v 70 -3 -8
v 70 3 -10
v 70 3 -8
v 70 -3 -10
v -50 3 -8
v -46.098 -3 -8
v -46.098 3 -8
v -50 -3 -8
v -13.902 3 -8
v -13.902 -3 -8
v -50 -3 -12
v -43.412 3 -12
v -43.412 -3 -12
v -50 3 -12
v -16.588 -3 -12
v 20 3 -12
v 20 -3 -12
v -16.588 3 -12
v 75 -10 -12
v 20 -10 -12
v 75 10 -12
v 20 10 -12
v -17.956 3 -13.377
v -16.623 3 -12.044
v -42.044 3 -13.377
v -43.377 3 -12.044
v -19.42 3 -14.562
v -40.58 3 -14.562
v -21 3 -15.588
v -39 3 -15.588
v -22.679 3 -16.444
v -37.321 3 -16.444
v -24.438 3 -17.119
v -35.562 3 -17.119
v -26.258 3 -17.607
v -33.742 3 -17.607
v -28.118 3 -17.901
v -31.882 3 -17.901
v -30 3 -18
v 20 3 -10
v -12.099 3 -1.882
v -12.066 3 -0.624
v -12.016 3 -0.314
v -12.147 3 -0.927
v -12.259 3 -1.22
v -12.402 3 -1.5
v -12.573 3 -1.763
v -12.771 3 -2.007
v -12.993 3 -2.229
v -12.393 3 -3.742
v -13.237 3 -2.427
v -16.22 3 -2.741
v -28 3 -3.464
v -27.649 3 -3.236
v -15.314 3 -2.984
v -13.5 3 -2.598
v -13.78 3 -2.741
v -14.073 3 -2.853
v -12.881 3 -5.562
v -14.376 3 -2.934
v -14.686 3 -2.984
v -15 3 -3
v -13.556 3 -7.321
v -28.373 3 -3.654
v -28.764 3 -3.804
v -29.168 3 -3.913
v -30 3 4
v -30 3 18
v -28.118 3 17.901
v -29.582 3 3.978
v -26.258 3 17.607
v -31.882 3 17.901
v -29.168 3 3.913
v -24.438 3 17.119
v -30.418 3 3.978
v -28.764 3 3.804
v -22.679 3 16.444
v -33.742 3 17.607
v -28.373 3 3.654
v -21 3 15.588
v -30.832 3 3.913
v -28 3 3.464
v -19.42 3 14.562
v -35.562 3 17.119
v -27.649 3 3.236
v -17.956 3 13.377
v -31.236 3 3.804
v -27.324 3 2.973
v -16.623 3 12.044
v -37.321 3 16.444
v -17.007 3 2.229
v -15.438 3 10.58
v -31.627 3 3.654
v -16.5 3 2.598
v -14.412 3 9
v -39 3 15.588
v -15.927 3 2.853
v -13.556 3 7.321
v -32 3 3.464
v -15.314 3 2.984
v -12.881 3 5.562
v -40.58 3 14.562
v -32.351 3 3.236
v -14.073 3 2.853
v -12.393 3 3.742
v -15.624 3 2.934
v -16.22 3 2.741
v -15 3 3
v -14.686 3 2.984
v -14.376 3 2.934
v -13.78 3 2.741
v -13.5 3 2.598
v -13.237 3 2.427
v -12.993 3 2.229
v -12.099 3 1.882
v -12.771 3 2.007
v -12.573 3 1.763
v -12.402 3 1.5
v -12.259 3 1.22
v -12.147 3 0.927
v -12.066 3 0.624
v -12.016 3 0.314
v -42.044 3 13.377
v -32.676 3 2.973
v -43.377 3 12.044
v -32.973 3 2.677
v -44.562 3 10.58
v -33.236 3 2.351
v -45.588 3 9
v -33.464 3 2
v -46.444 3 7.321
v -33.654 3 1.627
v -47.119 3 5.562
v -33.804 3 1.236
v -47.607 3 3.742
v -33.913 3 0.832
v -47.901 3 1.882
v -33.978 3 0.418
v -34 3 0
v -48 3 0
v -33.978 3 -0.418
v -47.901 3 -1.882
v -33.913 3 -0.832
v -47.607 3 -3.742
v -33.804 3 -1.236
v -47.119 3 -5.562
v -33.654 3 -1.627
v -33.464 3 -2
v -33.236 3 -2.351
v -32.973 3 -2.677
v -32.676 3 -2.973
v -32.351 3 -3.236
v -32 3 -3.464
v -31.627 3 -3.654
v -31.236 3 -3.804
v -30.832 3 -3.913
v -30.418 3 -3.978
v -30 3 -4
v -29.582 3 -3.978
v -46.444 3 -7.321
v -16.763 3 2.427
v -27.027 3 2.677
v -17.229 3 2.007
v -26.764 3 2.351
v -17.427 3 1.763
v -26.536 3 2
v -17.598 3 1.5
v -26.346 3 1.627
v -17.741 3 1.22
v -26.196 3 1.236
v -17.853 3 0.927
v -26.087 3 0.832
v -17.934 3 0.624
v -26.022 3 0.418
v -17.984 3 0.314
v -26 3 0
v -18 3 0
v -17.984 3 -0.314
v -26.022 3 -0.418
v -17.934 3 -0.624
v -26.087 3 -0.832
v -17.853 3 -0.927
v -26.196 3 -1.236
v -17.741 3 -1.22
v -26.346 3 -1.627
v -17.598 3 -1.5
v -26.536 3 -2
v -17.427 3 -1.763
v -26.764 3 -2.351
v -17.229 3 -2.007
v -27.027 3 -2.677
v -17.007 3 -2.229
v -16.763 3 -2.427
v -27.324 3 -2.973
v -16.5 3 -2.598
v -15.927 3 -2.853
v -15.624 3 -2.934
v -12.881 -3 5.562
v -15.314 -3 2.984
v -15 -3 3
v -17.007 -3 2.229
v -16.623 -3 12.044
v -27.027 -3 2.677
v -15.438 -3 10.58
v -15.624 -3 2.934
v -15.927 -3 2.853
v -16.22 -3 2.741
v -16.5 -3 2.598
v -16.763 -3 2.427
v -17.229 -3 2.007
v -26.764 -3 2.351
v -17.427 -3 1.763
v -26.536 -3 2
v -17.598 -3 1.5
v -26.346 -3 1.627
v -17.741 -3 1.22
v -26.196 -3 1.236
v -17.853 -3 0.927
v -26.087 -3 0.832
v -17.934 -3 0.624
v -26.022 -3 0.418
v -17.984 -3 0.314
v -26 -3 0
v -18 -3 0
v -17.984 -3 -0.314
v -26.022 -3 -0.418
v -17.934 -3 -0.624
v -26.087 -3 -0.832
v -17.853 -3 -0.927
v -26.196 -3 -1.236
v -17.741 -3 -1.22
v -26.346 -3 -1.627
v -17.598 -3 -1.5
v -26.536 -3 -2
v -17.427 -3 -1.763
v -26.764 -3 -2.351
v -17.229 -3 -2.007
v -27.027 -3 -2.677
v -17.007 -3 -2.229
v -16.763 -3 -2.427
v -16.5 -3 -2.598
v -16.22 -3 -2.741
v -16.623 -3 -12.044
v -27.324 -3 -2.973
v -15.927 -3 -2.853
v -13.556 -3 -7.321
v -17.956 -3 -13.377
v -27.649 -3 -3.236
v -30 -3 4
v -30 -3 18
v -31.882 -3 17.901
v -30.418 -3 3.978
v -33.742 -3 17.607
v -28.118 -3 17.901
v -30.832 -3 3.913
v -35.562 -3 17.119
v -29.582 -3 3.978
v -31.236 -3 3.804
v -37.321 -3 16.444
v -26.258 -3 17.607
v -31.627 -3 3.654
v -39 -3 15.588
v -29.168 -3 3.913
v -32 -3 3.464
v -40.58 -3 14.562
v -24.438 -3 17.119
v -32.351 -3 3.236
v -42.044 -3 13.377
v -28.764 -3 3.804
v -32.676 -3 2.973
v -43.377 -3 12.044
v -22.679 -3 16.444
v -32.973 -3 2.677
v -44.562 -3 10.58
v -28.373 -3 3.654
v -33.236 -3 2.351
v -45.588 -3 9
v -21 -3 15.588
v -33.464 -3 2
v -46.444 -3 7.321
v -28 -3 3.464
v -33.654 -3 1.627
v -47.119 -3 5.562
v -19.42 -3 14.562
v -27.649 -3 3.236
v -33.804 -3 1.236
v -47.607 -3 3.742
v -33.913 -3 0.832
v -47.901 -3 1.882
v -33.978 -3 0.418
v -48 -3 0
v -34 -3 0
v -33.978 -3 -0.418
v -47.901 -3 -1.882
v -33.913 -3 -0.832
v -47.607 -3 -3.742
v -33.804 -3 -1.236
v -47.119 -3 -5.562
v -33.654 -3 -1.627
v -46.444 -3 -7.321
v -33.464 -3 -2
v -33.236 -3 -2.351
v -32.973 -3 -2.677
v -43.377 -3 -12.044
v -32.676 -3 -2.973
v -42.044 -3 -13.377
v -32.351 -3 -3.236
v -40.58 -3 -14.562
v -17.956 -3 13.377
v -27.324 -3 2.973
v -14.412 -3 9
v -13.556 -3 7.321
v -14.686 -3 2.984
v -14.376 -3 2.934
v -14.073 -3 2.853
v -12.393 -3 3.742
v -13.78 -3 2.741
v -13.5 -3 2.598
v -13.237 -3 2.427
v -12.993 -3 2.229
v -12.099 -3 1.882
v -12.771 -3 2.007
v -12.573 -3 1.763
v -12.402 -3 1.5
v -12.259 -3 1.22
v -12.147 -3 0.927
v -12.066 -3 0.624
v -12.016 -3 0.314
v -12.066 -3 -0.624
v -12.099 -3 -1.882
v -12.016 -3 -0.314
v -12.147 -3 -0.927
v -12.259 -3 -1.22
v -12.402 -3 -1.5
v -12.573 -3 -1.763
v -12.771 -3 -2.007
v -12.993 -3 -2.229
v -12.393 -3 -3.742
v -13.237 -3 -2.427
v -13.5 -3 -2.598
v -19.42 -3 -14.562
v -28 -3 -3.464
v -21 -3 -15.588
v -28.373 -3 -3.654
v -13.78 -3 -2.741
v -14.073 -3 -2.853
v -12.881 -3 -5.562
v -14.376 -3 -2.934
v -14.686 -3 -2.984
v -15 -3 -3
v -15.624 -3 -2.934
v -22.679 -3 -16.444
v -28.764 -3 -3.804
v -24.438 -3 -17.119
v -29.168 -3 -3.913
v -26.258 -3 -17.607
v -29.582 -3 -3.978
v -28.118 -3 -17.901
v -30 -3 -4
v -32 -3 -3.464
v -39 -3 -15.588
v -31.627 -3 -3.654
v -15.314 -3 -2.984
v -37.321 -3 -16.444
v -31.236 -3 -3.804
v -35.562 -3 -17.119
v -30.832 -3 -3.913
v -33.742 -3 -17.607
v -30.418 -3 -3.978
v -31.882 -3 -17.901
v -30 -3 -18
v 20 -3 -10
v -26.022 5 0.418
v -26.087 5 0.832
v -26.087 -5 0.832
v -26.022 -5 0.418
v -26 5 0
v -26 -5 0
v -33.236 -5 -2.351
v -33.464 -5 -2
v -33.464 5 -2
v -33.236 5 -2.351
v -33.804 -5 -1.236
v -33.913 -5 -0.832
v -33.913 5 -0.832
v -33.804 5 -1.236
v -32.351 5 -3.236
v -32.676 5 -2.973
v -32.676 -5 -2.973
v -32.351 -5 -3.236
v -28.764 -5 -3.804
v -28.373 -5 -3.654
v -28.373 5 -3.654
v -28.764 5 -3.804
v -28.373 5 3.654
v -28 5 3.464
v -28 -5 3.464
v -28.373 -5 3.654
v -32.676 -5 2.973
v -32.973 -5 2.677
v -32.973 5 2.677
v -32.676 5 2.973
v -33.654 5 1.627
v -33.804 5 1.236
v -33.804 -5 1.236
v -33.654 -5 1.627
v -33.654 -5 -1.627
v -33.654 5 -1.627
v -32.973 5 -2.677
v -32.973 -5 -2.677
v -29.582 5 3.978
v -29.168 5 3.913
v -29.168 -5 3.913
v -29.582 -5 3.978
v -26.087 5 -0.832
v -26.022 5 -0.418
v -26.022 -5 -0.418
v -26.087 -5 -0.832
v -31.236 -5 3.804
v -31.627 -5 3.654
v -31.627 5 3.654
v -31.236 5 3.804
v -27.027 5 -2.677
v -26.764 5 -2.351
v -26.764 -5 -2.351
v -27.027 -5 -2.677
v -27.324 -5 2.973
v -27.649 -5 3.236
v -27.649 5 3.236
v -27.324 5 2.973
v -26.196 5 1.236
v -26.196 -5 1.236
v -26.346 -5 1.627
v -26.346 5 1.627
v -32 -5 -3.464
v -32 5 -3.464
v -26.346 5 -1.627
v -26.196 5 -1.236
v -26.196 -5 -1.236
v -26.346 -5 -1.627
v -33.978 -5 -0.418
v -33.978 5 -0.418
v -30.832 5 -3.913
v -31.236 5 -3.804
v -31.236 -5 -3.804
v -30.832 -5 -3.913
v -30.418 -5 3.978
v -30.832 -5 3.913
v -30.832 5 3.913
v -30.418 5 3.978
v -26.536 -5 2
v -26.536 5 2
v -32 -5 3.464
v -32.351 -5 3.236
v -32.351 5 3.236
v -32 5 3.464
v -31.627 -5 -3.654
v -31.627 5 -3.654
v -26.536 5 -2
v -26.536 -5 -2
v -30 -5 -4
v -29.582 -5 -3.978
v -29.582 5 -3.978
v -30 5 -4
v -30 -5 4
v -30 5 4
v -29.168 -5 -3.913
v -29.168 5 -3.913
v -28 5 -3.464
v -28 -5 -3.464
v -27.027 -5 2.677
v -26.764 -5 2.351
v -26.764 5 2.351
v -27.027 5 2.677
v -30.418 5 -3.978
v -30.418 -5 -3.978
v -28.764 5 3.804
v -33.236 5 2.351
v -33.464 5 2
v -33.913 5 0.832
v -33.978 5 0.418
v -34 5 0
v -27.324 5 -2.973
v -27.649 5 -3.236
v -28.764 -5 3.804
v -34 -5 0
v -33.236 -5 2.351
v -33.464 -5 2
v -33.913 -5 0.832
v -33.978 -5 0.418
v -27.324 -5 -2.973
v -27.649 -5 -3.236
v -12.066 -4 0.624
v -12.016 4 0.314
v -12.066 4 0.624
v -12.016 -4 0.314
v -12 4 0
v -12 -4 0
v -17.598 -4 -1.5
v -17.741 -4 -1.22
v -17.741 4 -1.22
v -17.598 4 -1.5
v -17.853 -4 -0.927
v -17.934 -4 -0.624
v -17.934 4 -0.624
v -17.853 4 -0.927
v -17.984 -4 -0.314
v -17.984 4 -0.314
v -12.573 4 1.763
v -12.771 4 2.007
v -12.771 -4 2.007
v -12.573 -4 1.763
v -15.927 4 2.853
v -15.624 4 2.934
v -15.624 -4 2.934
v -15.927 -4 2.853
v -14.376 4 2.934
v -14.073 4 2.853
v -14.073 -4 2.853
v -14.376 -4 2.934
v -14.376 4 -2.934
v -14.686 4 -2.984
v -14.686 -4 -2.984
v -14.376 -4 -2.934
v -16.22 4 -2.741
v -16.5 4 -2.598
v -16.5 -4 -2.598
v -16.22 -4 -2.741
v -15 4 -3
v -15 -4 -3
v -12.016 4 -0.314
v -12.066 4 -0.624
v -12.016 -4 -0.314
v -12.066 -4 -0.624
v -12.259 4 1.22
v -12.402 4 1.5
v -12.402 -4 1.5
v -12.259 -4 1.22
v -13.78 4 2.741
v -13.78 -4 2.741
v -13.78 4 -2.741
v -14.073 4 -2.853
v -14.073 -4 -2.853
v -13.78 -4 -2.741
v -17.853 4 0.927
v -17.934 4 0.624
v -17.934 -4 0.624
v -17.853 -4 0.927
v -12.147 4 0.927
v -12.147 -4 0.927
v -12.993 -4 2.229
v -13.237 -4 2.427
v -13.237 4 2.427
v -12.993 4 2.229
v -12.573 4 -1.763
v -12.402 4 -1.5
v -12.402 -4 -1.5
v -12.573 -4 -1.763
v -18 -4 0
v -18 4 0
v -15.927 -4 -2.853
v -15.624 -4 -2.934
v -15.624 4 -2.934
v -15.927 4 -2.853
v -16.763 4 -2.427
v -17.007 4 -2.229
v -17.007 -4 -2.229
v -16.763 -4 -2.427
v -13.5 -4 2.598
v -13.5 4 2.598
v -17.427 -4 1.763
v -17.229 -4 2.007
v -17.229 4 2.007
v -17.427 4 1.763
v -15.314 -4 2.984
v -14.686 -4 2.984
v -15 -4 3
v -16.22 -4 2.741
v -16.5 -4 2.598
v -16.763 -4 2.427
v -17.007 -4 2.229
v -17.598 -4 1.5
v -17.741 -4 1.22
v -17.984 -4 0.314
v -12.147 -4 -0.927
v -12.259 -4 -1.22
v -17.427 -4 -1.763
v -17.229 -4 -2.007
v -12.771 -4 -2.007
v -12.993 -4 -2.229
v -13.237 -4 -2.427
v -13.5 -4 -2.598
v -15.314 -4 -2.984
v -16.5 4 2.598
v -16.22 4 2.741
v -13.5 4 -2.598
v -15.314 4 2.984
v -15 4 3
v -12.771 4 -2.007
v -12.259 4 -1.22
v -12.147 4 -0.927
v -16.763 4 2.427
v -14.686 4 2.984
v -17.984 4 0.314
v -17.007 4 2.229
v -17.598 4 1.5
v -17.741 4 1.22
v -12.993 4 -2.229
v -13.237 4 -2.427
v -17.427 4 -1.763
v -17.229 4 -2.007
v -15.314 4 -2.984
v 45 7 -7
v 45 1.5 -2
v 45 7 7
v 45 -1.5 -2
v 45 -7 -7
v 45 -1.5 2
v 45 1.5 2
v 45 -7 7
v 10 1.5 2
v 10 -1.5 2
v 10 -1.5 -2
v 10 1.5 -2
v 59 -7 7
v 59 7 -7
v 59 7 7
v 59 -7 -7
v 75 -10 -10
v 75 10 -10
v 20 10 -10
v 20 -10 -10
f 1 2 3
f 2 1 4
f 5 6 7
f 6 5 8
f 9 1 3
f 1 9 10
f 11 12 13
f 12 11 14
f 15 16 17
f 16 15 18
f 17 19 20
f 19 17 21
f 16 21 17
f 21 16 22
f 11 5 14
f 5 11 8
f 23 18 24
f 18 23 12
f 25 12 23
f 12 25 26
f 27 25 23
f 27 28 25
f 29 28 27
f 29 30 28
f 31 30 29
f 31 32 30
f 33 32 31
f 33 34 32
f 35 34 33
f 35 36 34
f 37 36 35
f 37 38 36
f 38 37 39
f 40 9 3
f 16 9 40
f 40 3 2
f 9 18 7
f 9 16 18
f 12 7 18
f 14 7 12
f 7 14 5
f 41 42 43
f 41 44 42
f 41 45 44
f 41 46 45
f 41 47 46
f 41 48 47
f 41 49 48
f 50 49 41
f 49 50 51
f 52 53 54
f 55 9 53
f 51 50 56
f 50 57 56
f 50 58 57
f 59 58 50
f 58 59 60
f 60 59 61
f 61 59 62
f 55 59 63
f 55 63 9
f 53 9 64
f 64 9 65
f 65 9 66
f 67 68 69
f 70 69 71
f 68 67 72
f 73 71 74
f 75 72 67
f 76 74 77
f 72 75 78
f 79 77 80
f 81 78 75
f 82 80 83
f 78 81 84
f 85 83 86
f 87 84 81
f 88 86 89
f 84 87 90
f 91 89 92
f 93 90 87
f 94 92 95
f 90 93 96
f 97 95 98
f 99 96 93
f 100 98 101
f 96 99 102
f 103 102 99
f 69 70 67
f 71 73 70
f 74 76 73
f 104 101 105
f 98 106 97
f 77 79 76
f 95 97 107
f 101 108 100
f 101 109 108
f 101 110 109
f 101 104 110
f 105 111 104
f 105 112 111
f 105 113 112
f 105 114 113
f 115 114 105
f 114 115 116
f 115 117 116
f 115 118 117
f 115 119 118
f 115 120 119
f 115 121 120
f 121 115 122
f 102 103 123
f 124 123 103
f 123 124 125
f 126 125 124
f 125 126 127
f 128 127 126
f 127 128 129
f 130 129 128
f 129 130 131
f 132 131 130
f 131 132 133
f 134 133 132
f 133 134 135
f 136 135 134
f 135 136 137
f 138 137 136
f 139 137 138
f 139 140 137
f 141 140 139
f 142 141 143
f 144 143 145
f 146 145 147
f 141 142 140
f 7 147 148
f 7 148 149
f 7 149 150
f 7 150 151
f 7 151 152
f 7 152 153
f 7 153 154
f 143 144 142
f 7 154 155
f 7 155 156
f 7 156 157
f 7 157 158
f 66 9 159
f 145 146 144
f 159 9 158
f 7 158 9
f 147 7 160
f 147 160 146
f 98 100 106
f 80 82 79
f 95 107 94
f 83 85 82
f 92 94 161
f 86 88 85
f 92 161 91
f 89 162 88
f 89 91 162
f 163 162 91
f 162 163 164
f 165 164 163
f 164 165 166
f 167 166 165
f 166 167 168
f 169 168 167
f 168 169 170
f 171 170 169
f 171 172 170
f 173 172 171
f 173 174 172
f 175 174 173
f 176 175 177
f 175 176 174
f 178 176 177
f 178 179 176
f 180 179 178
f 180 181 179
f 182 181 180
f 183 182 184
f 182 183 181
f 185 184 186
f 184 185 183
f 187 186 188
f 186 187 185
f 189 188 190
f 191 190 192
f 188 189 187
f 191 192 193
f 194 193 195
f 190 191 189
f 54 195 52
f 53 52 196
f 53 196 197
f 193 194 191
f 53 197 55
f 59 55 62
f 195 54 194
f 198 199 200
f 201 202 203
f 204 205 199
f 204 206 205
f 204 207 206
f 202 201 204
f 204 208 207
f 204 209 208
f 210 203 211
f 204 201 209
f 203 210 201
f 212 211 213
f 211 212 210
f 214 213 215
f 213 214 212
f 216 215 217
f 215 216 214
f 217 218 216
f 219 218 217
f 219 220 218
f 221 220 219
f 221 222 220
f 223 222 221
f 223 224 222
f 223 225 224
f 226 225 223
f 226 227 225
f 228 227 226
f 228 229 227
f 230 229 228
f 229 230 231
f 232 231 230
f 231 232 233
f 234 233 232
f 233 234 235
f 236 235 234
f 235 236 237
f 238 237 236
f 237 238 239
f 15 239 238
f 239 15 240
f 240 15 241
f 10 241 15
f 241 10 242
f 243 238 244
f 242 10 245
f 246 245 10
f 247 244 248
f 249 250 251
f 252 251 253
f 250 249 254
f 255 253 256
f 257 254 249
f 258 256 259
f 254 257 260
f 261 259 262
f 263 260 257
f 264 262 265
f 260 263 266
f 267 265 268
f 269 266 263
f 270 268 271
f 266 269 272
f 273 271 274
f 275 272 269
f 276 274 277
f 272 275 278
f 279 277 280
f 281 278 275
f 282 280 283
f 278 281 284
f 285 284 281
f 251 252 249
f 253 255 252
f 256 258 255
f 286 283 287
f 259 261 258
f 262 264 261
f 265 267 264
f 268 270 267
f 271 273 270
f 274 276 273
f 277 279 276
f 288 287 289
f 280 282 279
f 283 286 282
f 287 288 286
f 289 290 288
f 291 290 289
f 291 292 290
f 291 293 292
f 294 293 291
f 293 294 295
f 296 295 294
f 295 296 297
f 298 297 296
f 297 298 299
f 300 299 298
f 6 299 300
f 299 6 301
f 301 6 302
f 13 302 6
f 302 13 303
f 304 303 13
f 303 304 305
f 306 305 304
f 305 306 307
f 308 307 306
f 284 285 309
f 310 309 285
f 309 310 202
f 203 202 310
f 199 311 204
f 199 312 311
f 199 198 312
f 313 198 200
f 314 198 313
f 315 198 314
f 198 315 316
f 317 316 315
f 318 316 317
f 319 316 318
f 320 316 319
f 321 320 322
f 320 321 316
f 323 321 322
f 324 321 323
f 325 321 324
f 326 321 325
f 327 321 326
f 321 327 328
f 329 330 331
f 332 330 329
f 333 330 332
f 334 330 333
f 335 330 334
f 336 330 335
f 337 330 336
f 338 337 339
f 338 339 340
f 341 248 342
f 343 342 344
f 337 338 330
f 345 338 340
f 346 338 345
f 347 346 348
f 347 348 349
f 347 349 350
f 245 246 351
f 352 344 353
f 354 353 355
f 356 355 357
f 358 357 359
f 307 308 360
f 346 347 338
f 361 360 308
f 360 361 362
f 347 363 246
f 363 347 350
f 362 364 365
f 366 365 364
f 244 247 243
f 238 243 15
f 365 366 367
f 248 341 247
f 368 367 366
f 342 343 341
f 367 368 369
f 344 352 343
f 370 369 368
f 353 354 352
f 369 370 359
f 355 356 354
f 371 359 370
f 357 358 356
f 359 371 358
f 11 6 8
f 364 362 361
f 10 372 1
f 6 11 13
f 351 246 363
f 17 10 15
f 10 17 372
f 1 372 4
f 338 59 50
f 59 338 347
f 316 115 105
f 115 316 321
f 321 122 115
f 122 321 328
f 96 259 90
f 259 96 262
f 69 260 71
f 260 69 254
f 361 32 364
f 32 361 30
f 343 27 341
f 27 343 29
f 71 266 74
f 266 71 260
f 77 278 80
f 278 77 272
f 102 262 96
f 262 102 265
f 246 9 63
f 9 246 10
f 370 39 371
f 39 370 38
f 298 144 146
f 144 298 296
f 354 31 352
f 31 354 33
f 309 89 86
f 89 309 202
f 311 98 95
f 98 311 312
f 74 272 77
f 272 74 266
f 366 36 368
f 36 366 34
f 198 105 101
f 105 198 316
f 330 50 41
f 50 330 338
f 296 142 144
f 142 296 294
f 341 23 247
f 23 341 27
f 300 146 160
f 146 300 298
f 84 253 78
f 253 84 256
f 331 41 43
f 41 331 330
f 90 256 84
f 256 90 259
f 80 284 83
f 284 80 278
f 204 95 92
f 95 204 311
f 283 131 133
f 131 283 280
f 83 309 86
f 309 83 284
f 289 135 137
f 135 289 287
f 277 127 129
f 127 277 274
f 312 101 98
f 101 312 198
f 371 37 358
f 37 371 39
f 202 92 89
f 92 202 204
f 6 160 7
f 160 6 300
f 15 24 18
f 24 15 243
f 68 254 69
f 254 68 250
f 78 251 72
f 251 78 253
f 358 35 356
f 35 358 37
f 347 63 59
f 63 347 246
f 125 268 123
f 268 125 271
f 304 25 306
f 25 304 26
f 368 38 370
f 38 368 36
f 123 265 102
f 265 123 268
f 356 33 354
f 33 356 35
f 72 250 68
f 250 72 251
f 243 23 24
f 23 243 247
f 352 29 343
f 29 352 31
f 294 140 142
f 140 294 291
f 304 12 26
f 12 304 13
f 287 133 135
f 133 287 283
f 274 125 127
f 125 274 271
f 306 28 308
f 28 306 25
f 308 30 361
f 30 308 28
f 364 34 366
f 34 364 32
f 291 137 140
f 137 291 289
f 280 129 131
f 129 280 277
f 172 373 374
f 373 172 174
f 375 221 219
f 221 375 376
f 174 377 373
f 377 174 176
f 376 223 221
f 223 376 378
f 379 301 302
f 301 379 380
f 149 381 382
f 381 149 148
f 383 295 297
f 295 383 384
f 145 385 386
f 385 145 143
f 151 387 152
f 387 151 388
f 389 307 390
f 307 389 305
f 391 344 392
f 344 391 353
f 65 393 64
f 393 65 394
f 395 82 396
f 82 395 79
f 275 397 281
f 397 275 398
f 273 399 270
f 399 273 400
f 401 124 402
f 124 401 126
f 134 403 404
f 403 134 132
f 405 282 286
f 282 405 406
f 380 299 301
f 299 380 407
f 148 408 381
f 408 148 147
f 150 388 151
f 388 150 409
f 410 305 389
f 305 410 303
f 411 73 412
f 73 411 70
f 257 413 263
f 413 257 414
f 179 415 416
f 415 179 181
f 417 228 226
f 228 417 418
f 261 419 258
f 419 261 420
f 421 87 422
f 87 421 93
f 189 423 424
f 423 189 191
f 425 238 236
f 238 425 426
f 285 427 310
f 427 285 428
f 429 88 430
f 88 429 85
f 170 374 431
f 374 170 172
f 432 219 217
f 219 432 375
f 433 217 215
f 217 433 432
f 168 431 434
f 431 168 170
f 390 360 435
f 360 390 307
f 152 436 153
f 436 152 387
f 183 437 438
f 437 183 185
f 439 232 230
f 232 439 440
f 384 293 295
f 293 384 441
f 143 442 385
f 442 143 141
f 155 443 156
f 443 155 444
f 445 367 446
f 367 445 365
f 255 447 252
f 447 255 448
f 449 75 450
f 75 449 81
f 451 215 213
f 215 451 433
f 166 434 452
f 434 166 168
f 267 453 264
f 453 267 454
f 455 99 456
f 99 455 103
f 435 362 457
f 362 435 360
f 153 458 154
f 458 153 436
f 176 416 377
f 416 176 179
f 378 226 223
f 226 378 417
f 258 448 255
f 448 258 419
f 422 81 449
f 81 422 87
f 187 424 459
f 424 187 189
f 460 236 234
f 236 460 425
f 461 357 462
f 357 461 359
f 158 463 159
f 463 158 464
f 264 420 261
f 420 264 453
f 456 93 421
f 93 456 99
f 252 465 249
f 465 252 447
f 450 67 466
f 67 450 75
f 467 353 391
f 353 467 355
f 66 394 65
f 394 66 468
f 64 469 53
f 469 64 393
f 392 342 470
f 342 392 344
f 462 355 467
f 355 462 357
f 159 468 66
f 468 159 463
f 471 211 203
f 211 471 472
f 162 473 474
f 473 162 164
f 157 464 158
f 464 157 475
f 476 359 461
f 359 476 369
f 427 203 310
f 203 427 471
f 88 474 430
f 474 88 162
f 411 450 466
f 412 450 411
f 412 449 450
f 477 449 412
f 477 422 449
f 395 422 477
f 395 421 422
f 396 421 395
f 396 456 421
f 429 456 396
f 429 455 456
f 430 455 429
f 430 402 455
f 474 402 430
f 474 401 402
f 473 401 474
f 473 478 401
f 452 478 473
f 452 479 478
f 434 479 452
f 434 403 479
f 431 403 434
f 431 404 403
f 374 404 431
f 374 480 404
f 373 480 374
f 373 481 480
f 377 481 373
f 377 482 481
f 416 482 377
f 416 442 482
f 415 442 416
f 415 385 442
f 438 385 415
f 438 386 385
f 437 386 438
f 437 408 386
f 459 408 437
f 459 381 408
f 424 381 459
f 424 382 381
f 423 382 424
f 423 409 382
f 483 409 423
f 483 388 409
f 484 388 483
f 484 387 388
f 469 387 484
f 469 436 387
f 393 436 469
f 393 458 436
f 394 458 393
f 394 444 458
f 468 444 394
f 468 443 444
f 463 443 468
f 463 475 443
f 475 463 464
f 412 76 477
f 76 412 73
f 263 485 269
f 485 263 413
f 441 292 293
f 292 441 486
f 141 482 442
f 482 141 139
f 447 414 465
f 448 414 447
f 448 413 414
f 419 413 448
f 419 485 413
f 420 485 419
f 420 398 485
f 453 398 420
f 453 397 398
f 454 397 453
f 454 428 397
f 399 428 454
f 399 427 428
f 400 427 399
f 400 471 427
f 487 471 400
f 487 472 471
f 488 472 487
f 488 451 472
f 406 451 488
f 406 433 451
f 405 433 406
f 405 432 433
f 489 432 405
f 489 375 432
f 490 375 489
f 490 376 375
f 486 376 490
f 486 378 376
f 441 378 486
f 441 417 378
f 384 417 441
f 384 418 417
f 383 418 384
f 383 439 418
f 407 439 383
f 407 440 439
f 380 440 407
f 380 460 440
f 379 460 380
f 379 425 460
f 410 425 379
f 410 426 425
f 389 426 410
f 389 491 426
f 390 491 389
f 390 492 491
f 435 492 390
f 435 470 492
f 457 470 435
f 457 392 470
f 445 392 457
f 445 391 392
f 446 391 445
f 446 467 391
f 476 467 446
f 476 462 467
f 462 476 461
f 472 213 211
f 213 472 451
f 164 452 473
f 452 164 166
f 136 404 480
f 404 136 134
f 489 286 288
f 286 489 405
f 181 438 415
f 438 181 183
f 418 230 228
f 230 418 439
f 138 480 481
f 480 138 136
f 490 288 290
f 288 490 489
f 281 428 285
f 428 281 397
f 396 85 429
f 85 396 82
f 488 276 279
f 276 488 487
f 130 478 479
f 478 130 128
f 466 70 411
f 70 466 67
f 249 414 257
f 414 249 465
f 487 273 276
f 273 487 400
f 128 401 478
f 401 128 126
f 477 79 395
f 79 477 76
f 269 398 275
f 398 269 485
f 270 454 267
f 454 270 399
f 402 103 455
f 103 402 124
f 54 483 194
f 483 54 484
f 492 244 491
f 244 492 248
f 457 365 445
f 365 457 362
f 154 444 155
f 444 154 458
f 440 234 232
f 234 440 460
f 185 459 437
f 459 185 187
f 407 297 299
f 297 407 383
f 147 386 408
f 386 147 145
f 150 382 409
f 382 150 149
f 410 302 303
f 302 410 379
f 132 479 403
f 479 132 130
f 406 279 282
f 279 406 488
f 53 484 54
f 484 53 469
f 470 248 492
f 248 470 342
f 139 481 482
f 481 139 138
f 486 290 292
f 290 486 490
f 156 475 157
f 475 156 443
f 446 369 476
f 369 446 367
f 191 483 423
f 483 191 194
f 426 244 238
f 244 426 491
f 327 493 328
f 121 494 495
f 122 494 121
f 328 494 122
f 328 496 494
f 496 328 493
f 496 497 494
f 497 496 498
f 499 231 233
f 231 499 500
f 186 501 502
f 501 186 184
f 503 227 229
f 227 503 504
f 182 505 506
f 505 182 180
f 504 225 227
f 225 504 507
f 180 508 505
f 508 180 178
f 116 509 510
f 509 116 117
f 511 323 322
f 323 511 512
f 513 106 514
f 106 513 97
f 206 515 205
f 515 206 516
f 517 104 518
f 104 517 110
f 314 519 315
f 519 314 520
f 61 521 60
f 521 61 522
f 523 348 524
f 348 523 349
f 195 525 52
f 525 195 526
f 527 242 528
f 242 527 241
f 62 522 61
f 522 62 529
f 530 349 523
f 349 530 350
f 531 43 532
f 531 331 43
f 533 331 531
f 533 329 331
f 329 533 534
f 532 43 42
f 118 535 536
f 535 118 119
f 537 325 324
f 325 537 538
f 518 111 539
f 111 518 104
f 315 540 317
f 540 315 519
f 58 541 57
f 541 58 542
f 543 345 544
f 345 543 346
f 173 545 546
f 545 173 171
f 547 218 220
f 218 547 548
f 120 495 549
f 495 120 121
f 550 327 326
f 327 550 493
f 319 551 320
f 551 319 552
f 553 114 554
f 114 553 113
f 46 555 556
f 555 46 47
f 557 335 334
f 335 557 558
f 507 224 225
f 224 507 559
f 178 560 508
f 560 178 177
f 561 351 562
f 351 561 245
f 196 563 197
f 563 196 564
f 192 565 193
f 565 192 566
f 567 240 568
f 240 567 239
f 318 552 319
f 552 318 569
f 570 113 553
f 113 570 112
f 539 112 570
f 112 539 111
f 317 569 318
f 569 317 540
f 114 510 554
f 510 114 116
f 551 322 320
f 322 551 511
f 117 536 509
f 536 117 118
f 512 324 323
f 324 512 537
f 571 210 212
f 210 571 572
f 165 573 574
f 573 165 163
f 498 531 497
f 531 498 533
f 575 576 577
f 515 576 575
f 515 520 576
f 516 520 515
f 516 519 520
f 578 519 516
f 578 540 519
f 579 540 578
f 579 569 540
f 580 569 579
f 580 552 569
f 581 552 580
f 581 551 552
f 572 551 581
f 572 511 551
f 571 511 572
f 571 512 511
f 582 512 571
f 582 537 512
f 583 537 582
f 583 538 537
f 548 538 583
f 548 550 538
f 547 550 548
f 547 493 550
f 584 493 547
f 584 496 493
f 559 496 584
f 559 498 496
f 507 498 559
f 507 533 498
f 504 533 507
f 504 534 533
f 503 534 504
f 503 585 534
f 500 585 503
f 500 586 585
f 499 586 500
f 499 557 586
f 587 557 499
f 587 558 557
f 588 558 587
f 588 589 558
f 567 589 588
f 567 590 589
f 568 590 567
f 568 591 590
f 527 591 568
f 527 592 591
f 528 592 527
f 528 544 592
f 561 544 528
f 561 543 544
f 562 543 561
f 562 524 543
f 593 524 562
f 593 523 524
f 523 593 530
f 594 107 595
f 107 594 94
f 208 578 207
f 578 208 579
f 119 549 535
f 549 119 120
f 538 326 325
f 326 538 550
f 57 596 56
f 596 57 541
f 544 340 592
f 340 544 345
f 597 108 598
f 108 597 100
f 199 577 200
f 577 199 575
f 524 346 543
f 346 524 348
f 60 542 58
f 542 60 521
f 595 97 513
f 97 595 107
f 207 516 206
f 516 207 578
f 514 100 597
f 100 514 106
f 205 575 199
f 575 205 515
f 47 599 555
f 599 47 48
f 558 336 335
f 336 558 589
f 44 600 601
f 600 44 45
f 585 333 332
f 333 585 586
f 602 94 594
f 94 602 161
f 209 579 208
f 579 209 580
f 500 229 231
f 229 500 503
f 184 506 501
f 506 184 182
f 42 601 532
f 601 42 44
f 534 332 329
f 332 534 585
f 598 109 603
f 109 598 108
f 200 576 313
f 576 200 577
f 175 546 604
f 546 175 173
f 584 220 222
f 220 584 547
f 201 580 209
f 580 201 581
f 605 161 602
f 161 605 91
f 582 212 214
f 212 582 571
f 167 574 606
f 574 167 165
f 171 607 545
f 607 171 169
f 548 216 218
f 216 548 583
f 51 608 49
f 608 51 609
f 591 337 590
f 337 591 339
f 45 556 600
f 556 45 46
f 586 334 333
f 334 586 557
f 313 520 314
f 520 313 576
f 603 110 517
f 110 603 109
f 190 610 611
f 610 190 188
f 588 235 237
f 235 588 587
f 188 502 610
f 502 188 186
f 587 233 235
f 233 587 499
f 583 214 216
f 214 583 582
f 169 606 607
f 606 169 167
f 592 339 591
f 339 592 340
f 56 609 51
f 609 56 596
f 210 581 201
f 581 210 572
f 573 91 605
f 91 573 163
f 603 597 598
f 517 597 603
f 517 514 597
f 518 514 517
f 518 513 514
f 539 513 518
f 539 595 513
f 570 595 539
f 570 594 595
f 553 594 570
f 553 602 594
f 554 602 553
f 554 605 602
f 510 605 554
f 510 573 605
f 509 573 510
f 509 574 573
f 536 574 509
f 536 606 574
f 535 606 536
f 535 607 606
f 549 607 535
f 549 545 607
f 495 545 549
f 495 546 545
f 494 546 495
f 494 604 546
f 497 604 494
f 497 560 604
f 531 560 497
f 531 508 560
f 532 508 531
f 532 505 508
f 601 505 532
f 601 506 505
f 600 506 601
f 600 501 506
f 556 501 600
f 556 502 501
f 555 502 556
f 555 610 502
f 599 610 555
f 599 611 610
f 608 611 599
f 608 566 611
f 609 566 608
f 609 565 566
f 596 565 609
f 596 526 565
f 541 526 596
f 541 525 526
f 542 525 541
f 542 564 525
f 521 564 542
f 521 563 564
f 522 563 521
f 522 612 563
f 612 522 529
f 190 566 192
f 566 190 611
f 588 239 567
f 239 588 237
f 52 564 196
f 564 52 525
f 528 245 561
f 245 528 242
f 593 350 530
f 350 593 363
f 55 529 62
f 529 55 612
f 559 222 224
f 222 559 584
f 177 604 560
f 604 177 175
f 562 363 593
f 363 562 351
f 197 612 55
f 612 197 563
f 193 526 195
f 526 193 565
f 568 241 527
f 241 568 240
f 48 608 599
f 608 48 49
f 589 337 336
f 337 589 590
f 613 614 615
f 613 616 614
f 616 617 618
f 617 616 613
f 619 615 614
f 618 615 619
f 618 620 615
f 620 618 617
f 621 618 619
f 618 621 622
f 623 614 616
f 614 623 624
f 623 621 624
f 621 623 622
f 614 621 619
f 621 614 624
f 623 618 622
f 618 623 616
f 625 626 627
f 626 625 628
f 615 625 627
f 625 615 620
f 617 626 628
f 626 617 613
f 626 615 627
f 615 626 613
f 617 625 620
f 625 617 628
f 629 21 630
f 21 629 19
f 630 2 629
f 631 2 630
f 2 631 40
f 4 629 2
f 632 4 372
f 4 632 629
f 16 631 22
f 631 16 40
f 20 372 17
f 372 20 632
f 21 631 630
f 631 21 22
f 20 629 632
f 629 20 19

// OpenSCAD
// file: _common.scad
// mechanism 共用設定 + 齒輪 module
$fn = 60;

// 簡化齒輪：N 個齒、節圓半徑 r、齒高 h、齒寬 w
module simple_gear(N = 16, r = 20, h = 4, thick = 6) {
  union() {
    // 主圓盤
    cylinder(h = thick, r = r, center = true);
    // 齒（梯形）
    for (i = [0:N-1]) {
      rotate([0, 0, i * 360 / N])
        translate([r, 0, 0])
          linear_extrude(height = thick, center = true)
            polygon([[0, -2.4], [h, -1.4], [h, 1.4], [0, 2.4]]);
    }
    // 中心凸軸
    cylinder(h = thick * 1.4, r = r * 0.18, center = true);
  }
}
// main file
// 曲柄滑塊 Crank-Slider — 圓盤 + 銷 + 連桿 + 滑塊 + 滑軌
include <_common.scad>

// 機架（底板）
color([0.28, 0.34, 0.43])
  translate([-50, -3, -12]) cube([120, 6, 4]);

// 驅動圓盤
color([0.08, 0.71, 0.65])
  translate([-30, 0, 0]) rotate([90, 0, 0]) cylinder(h = 6, r = 18, center = true);

// 圓盤中心軸
color([0.06, 0.46, 0.42])
  translate([-30, 0, 0]) rotate([90, 0, 0]) cylinder(h = 10, r = 4, center = true);

// 曲柄銷（紅色，在圓盤右側偏置 = 死點位置）
color([0.86, 0.15, 0.15])
  translate([-15, 0, 0]) rotate([90, 0, 0]) cylinder(h = 8, r = 3, center = true);

// 連桿（從銷連到滑塊）
color([0.06, 0.46, 0.42])
  translate([10, -1.5, -2]) cube([35, 3, 4]);

// 滑塊
color([0.08, 0.71, 0.65])
  translate([45, -7, -7]) cube([14, 14, 14]);

// 滑軌（虛擬延伸標示，灰底）
color([0.4, 0.45, 0.5])
  translate([20, -10, -12]) cube([55, 20, 2]);
